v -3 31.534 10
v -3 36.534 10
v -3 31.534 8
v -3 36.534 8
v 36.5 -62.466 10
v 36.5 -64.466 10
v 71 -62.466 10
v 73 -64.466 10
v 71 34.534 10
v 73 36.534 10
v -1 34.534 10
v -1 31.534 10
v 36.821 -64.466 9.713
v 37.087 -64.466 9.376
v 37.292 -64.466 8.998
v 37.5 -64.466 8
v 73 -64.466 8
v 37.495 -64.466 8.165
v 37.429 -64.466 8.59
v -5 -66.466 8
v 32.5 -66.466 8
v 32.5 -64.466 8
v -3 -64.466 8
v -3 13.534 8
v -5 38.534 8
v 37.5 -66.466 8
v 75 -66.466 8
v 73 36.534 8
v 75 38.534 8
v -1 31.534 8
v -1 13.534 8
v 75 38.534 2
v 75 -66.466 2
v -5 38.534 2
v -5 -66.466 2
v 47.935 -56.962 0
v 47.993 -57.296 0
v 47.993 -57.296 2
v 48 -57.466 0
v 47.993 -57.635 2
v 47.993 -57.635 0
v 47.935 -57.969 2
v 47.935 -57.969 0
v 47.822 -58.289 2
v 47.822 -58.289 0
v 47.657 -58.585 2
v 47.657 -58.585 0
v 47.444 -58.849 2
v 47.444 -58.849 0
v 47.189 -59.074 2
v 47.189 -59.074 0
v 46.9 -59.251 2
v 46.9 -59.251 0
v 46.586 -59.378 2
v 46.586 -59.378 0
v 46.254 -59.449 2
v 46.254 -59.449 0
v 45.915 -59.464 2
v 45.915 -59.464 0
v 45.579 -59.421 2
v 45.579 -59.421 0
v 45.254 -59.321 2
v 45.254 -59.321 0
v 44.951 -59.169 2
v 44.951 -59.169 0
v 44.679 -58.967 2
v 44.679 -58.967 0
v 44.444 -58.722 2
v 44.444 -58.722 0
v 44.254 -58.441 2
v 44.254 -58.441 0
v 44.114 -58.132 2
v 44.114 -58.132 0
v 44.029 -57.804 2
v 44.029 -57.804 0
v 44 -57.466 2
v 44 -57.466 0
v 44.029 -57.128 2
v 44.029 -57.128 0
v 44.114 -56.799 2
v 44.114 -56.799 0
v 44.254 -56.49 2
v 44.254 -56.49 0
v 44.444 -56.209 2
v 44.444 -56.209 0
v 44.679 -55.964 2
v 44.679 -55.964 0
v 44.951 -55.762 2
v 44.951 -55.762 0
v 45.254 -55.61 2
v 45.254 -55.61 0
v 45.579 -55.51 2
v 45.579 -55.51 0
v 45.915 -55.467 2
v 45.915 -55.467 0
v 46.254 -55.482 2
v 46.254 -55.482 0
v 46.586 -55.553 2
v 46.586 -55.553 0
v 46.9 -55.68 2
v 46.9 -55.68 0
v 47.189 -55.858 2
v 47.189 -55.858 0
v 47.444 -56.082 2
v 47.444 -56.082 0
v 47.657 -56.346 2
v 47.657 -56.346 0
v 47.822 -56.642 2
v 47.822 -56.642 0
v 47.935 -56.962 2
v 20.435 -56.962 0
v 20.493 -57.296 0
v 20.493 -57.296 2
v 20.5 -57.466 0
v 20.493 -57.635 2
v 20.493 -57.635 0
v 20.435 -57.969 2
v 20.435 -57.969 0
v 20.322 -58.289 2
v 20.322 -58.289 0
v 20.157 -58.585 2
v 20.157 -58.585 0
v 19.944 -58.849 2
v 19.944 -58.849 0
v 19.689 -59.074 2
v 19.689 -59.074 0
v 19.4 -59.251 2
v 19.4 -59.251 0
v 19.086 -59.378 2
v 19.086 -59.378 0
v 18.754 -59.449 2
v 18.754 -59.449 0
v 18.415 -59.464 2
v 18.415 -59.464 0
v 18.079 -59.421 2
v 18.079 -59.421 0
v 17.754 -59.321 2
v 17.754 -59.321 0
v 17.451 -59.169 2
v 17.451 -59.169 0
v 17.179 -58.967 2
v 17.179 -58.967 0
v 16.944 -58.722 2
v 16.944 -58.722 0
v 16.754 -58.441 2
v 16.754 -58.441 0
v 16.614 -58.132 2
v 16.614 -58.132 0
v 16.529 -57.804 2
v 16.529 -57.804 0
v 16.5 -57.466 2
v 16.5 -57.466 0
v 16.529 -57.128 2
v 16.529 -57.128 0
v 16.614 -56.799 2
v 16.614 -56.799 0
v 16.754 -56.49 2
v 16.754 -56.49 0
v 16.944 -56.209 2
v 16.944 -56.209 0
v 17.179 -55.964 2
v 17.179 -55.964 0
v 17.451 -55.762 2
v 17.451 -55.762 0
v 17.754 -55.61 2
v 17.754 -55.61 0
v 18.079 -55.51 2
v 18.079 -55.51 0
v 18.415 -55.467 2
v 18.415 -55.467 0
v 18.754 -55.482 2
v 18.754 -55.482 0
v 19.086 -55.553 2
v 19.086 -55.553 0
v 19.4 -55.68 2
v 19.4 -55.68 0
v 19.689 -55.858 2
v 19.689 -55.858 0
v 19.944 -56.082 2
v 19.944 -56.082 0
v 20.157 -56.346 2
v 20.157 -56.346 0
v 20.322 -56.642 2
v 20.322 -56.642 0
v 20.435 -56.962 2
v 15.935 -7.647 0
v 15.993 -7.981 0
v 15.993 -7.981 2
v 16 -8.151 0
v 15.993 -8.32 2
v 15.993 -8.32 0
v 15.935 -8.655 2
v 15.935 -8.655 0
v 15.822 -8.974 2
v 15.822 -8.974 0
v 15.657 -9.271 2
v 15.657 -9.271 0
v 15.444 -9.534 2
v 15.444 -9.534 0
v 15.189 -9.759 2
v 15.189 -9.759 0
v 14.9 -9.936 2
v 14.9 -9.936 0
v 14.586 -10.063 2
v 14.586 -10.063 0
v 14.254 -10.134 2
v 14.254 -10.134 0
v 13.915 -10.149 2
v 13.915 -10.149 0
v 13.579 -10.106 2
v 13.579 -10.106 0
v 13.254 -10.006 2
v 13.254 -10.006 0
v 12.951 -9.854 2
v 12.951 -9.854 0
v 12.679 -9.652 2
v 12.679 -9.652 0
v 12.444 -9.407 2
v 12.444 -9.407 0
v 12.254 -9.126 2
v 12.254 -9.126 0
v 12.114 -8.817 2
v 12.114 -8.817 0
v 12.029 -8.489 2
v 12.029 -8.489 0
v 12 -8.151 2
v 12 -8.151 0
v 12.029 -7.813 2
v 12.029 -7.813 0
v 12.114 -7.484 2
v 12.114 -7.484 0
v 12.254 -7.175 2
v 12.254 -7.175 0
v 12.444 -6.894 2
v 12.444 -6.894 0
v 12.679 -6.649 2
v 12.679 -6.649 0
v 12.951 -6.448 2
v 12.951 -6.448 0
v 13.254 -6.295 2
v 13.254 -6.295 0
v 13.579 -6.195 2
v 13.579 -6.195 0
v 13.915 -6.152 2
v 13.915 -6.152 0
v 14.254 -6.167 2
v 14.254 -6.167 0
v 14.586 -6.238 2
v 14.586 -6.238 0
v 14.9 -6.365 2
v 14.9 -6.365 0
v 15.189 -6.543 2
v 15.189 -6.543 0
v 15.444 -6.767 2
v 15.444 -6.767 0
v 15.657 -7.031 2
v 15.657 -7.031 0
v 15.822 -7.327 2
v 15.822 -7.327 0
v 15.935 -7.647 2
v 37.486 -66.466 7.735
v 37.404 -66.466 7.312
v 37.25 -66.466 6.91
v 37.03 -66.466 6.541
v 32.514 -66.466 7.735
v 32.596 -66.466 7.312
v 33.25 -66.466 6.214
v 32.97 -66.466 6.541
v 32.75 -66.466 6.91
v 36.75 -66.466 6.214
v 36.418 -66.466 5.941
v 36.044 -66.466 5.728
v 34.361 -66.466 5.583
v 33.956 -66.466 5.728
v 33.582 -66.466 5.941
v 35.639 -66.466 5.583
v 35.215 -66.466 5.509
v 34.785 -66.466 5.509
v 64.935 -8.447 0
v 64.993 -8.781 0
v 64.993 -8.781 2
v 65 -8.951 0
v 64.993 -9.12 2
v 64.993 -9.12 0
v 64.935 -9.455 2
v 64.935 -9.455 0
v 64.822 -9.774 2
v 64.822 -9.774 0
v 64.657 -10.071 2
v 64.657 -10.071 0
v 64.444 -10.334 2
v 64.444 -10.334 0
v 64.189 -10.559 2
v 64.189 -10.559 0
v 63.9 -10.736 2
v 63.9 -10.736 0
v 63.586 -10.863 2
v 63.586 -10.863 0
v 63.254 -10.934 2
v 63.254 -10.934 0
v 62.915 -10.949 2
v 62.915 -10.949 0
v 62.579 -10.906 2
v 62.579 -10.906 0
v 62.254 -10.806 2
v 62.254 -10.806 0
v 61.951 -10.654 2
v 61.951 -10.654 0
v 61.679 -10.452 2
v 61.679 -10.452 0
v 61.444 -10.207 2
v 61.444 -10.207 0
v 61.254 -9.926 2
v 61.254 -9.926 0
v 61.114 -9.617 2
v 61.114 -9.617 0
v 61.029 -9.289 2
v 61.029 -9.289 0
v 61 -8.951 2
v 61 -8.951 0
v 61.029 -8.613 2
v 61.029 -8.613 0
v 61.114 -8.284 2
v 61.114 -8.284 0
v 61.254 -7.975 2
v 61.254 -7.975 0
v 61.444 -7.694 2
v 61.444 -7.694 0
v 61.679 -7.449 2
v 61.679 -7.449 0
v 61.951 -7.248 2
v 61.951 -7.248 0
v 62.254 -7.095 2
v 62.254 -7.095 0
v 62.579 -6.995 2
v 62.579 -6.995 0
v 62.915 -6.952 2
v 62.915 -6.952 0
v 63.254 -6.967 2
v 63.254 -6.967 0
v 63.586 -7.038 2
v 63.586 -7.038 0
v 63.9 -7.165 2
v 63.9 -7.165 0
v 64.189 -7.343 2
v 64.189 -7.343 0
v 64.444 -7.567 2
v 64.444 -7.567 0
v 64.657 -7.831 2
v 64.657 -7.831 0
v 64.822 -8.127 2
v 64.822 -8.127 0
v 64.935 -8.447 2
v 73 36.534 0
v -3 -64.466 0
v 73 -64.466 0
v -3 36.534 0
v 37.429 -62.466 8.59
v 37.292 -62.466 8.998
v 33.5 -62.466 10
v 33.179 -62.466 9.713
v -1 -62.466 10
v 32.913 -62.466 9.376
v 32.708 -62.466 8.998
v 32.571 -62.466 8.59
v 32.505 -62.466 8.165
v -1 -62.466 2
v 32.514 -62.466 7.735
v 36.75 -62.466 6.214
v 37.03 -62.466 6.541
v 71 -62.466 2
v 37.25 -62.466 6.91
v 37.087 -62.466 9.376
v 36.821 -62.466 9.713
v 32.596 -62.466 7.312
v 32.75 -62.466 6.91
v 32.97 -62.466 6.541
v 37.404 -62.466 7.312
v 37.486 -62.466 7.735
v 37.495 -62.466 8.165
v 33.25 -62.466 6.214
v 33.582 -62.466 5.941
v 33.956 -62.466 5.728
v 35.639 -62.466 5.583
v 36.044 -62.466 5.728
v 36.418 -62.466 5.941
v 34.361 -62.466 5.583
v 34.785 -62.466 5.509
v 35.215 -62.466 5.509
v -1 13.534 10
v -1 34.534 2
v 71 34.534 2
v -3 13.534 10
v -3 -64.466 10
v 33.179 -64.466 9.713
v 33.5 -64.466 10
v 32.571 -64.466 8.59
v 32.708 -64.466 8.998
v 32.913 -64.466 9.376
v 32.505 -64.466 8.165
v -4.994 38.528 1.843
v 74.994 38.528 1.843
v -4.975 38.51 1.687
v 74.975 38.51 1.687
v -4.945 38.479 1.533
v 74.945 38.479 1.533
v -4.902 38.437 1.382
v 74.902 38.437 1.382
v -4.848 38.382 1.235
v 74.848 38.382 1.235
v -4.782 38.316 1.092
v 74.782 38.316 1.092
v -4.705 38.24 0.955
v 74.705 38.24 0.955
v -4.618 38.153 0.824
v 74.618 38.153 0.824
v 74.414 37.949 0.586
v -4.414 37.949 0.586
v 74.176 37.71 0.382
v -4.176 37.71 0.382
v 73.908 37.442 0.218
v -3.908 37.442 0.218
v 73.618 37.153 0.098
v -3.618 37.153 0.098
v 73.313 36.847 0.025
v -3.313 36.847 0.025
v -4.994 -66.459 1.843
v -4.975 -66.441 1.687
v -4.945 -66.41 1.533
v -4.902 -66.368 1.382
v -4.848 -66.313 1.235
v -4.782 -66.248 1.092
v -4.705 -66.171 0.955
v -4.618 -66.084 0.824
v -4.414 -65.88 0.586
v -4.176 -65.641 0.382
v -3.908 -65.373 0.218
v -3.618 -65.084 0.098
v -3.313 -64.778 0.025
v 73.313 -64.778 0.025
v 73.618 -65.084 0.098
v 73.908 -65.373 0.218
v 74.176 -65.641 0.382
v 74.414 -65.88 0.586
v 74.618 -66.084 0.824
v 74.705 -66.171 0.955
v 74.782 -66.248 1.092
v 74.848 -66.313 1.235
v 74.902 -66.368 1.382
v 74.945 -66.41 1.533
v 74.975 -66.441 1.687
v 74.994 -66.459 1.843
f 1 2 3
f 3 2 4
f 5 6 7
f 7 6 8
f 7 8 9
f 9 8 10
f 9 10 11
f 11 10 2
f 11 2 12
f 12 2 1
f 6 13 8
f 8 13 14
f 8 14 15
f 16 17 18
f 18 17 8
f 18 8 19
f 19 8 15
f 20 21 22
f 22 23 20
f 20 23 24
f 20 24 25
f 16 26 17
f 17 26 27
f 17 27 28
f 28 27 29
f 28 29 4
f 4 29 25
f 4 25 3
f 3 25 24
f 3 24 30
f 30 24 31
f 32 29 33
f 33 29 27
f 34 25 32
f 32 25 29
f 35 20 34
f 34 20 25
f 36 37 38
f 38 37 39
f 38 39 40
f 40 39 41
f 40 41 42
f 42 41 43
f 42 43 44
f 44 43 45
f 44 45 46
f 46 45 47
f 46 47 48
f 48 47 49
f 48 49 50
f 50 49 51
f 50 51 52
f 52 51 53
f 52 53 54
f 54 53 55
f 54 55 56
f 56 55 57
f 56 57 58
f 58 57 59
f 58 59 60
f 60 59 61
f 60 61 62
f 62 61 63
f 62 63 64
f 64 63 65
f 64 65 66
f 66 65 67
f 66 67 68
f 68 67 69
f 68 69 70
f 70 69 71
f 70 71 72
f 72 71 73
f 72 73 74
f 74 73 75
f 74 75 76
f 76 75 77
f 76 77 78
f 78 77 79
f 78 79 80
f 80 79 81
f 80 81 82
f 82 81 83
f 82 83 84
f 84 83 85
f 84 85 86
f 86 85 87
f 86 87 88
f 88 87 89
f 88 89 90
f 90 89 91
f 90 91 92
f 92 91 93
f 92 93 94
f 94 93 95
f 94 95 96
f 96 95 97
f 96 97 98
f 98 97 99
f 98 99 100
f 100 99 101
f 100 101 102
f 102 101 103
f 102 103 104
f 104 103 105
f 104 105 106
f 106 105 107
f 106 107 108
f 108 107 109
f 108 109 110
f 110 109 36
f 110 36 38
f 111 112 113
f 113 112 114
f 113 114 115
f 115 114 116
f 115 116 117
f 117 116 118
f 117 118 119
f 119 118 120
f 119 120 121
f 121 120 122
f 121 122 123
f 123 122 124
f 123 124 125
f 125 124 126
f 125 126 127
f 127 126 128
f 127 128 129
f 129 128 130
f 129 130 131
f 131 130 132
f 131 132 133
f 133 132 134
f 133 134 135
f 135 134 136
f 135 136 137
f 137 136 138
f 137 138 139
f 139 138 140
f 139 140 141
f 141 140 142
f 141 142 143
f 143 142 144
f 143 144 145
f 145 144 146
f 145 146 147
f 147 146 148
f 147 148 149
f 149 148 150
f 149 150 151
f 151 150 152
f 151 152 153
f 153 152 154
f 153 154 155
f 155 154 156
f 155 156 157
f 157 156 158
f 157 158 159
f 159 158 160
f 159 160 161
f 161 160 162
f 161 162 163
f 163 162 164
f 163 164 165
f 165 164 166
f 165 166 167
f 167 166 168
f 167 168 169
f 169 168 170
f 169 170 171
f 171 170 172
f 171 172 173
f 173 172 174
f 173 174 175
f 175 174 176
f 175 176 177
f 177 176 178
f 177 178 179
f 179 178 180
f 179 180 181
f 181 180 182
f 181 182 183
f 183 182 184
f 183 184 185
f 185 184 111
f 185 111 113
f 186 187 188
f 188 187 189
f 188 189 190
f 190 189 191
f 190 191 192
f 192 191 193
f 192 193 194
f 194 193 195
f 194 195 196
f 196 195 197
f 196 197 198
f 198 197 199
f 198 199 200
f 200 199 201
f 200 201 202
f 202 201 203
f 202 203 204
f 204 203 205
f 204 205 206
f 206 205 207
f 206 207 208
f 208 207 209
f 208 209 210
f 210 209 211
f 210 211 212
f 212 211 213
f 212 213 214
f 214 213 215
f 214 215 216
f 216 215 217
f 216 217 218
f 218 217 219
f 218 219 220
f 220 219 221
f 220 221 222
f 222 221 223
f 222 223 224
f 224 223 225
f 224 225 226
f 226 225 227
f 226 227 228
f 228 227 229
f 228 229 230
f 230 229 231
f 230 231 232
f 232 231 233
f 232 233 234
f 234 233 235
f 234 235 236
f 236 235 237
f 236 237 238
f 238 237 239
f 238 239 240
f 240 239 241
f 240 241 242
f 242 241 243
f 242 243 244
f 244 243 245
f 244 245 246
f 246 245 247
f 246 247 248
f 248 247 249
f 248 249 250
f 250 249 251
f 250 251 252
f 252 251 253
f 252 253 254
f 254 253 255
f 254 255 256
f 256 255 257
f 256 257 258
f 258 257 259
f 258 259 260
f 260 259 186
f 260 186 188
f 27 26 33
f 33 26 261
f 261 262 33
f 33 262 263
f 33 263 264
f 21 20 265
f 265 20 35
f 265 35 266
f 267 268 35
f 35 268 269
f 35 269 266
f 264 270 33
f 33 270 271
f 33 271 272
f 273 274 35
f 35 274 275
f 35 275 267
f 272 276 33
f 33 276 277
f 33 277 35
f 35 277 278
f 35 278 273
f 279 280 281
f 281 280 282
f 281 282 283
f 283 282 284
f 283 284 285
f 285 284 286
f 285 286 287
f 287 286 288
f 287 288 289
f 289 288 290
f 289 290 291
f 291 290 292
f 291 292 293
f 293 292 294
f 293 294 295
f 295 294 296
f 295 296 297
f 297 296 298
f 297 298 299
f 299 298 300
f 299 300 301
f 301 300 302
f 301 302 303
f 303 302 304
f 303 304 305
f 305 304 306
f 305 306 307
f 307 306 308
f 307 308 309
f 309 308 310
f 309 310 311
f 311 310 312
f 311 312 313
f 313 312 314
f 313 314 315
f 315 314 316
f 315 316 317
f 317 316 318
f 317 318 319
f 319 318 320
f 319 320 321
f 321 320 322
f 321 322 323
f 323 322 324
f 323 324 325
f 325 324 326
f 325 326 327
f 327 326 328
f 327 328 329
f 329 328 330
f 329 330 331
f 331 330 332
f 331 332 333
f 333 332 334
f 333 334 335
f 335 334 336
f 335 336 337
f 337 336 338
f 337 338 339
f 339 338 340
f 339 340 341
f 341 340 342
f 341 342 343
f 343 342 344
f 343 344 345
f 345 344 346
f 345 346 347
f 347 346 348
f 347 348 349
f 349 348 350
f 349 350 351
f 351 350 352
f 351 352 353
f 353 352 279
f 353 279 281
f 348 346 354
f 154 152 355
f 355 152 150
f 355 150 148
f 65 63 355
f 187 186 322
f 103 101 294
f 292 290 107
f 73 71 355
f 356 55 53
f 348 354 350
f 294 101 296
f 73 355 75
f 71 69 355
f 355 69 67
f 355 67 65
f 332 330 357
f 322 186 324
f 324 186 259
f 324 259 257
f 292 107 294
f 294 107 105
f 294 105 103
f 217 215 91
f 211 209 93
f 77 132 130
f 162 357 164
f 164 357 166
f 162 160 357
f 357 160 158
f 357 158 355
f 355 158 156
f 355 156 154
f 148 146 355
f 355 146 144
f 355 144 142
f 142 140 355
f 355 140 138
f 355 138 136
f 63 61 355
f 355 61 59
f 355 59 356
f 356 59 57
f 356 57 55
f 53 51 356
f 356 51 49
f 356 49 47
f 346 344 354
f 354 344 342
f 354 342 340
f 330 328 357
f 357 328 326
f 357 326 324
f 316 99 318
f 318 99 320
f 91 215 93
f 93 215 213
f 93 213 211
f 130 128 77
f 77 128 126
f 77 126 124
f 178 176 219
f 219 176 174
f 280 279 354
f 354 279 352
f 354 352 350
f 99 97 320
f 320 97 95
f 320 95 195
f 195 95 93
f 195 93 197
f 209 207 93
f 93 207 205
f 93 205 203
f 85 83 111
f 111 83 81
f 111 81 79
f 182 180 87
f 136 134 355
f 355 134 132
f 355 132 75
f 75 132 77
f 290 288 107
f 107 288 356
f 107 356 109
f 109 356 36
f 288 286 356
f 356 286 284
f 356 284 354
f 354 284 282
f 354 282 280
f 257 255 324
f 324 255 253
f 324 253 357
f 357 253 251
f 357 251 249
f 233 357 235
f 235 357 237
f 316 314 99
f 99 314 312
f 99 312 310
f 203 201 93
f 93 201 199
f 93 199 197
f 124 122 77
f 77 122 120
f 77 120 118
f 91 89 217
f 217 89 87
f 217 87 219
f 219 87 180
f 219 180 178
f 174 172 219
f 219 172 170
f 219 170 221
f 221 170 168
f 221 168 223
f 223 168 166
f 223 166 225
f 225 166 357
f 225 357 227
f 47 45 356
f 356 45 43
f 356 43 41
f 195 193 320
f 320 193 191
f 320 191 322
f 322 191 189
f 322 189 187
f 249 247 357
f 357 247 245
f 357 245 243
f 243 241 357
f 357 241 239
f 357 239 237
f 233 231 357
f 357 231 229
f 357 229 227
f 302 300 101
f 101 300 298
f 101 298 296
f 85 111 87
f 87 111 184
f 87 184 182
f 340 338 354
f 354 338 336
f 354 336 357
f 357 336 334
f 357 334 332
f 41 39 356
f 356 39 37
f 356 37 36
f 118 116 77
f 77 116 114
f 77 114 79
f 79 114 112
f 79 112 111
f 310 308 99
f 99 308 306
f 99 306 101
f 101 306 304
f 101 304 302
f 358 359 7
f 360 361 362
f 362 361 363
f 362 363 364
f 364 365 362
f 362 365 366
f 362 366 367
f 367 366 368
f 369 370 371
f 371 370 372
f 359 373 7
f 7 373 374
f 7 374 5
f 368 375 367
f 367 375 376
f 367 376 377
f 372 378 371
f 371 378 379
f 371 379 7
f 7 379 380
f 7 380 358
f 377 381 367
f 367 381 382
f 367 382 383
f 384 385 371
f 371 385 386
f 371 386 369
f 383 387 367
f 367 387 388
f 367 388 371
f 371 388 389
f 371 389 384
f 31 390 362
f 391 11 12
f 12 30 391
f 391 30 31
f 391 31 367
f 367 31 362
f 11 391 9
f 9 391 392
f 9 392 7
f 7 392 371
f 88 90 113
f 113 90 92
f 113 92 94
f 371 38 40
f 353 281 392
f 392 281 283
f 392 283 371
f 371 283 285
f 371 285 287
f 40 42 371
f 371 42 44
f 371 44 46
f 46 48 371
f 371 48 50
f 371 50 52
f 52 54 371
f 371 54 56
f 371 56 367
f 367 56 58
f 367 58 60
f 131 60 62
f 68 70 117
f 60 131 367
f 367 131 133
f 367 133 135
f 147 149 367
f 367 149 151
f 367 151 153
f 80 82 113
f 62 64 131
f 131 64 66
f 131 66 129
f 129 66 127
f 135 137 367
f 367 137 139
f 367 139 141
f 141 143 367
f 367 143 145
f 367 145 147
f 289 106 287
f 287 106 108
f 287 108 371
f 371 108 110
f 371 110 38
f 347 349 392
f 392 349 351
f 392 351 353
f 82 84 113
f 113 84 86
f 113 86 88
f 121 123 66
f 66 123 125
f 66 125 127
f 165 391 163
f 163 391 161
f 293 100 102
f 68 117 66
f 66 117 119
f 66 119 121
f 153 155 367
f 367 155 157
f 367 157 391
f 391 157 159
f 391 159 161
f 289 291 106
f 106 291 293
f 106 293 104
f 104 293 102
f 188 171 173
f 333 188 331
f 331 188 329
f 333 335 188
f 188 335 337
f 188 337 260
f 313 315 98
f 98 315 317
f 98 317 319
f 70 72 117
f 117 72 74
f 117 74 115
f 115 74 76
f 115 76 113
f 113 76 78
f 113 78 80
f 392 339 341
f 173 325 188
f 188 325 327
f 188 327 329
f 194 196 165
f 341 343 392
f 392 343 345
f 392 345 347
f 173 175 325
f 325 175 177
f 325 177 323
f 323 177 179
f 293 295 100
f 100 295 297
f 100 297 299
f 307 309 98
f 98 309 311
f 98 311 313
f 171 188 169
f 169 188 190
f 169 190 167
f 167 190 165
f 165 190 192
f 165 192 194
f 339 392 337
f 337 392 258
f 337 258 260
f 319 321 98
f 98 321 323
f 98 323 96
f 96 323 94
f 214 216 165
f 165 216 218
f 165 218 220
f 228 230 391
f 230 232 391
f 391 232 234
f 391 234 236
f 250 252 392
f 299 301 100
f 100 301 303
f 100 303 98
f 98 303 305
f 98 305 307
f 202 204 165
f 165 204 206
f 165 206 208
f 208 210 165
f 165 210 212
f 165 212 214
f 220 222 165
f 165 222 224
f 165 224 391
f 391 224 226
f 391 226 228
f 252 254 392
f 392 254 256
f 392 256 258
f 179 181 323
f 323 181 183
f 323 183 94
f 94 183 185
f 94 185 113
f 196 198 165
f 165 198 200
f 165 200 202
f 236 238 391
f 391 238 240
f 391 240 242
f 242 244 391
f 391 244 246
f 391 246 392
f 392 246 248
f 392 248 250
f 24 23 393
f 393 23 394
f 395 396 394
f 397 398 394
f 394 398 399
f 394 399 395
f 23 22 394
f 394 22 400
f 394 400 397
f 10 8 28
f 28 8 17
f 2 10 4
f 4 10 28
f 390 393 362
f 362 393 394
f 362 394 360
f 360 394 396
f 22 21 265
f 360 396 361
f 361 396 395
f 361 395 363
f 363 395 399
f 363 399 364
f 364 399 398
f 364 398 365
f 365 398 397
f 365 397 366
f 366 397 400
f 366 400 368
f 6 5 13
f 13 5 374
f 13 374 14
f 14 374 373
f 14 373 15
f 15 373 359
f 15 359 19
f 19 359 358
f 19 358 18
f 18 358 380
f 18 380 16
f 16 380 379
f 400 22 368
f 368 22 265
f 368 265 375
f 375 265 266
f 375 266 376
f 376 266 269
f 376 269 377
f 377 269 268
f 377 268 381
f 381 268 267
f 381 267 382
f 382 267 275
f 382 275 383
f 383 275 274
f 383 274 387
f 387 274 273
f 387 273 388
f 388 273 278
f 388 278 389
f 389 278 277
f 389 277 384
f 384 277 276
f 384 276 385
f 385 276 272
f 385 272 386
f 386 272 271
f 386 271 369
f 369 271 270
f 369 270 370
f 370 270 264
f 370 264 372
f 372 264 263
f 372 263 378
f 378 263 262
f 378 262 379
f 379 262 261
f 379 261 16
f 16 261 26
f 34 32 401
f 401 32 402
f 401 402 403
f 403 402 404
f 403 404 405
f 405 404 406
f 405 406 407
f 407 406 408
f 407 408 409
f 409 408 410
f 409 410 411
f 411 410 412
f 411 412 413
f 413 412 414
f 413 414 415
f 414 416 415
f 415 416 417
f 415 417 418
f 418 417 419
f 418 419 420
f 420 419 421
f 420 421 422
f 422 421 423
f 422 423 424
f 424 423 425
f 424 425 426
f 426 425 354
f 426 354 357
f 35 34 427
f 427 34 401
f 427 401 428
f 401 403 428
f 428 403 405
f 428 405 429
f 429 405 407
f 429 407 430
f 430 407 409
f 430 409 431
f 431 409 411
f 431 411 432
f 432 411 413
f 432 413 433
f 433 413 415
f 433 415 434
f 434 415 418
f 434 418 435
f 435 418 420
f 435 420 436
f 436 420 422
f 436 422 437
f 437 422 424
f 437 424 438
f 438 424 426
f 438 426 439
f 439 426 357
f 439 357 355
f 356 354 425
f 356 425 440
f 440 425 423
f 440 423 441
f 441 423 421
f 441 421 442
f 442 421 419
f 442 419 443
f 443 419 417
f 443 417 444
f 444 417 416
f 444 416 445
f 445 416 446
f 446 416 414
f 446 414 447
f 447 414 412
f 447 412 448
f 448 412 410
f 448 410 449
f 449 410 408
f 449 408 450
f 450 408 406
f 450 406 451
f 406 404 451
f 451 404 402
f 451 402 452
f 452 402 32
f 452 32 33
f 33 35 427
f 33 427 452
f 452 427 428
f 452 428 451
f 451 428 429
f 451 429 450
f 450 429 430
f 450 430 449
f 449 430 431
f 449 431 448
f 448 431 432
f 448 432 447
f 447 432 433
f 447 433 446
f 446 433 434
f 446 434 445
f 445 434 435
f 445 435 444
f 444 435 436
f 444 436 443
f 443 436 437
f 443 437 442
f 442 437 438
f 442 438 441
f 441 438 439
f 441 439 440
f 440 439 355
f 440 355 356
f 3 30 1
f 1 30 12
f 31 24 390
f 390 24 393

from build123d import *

# Parameters (mm, degrees)
SKETCH1_W           = 80
SKETCH1_H           = 105
SKETCH1_W_2         = 60
SKETCH1_H_2         = 71.314940153
SKETCH1_R           = 2
BOSS_EXTRUDE2_DEPTH = 8
SKETCH2_W           = 72
SKETCH2_H           = 97
CUT_EXTRUDE1_DEPTH  = 6
SKETCH3_W           = 76
SKETCH3_H           = 101
BOSS_EXTRUDE3_DEPTH = 2
SKETCH4_W           = 72
SKETCH4_H           = 97
CUT_EXTRUDE2_DEPTH  = 2
SKETCH5_R           = 2.5
CUT_EXTRUDE3_DEPTH  = 5
FILLET1_R           = 2
SKETCH6_W           = 2
SKETCH6_H           = 18
CUT_EXTRUDE4_DEPTH  = 2


with BuildPart() as part:
    # Sketch1 → Boss-Extrude2 (new body)
    # profile 1 of 2: a face of its own
    with BuildSketch(Plane.XY):
        with Locations((35, -13.965517241)):
            Rectangle(SKETCH1_W, SKETCH1_H)
        with Locations((37, -26.808047164)):
            Rectangle(SKETCH1_W_2, SKETCH1_H_2, mode=Mode.SUBTRACT)
    # profile 2 of 2: a face of its own
    with BuildSketch(Plane.XY):
        with Locations((37, -26.808047164)):
            Rectangle(SKETCH1_W_2, SKETCH1_H_2)
        with Locations((14, -8.150577088)):
            Circle(SKETCH1_R, mode=Mode.SUBTRACT)
        with Locations((18.5, -57.465517241)):
            Circle(SKETCH1_R, mode=Mode.SUBTRACT)
        with Locations((46, -57.465517241)):
            Circle(SKETCH1_R, mode=Mode.SUBTRACT)
        with Locations((63, -8.950577088)):
            Circle(SKETCH1_R, mode=Mode.SUBTRACT)
    extrude(amount=BOSS_EXTRUDE2_DEPTH)

    # Sketch2 → Cut-Extrude1 (cut)
    with BuildSketch(Plane.XY.offset(8)):
        with Locations((35, -13.965517241)):
            Rectangle(SKETCH2_W, SKETCH2_H)
    extrude(amount=-CUT_EXTRUDE1_DEPTH, mode=Mode.SUBTRACT)

    # Sketch3 → Boss-Extrude3 (add)
    with BuildSketch(Plane.XY.offset(8)):
        with Locations((35, -13.965517241)):
            Rectangle(SKETCH3_W, SKETCH3_H)
    extrude(amount=BOSS_EXTRUDE3_DEPTH)

    # Sketch4 → Cut-Extrude2 (cut)
    with BuildSketch(Plane.XY.offset(10)):
        with Locations((35, -13.965517241)):
            Rectangle(SKETCH4_W, SKETCH4_H)
    extrude(amount=-CUT_EXTRUDE2_DEPTH, mode=Mode.SUBTRACT)

    # Sketch5 → Cut-Extrude3 (cut)
    with BuildSketch(Plane(origin=(0, -66.465517241, 0), x_dir=(-1, 0, 0), z_dir=(0, -1, 0))):
        with Locations((-35, -8)):
            Circle(SKETCH5_R)
    extrude(amount=-CUT_EXTRUDE3_DEPTH, mode=Mode.SUBTRACT)

    # Fillet1
    fillet1_edges = [part.edges().sort_by_distance(p)[0] for p in [
        (35, -66.465517241, 0),
        (-5, -13.965517241, 0),
        (35, 38.534482759, 0),
        (75, -13.965517241, 0),
    ]]
    fillet(fillet1_edges, radius=FILLET1_R)

    # Sketch6 → Cut-Extrude4 (cut)
    with BuildSketch(Plane.XY.offset(10)):
        with Locations((-2, 22.534482759)):
            Rectangle(SKETCH6_W, SKETCH6_H)
    extrude(amount=-CUT_EXTRUDE4_DEPTH, mode=Mode.SUBTRACT)


solid = part.part
